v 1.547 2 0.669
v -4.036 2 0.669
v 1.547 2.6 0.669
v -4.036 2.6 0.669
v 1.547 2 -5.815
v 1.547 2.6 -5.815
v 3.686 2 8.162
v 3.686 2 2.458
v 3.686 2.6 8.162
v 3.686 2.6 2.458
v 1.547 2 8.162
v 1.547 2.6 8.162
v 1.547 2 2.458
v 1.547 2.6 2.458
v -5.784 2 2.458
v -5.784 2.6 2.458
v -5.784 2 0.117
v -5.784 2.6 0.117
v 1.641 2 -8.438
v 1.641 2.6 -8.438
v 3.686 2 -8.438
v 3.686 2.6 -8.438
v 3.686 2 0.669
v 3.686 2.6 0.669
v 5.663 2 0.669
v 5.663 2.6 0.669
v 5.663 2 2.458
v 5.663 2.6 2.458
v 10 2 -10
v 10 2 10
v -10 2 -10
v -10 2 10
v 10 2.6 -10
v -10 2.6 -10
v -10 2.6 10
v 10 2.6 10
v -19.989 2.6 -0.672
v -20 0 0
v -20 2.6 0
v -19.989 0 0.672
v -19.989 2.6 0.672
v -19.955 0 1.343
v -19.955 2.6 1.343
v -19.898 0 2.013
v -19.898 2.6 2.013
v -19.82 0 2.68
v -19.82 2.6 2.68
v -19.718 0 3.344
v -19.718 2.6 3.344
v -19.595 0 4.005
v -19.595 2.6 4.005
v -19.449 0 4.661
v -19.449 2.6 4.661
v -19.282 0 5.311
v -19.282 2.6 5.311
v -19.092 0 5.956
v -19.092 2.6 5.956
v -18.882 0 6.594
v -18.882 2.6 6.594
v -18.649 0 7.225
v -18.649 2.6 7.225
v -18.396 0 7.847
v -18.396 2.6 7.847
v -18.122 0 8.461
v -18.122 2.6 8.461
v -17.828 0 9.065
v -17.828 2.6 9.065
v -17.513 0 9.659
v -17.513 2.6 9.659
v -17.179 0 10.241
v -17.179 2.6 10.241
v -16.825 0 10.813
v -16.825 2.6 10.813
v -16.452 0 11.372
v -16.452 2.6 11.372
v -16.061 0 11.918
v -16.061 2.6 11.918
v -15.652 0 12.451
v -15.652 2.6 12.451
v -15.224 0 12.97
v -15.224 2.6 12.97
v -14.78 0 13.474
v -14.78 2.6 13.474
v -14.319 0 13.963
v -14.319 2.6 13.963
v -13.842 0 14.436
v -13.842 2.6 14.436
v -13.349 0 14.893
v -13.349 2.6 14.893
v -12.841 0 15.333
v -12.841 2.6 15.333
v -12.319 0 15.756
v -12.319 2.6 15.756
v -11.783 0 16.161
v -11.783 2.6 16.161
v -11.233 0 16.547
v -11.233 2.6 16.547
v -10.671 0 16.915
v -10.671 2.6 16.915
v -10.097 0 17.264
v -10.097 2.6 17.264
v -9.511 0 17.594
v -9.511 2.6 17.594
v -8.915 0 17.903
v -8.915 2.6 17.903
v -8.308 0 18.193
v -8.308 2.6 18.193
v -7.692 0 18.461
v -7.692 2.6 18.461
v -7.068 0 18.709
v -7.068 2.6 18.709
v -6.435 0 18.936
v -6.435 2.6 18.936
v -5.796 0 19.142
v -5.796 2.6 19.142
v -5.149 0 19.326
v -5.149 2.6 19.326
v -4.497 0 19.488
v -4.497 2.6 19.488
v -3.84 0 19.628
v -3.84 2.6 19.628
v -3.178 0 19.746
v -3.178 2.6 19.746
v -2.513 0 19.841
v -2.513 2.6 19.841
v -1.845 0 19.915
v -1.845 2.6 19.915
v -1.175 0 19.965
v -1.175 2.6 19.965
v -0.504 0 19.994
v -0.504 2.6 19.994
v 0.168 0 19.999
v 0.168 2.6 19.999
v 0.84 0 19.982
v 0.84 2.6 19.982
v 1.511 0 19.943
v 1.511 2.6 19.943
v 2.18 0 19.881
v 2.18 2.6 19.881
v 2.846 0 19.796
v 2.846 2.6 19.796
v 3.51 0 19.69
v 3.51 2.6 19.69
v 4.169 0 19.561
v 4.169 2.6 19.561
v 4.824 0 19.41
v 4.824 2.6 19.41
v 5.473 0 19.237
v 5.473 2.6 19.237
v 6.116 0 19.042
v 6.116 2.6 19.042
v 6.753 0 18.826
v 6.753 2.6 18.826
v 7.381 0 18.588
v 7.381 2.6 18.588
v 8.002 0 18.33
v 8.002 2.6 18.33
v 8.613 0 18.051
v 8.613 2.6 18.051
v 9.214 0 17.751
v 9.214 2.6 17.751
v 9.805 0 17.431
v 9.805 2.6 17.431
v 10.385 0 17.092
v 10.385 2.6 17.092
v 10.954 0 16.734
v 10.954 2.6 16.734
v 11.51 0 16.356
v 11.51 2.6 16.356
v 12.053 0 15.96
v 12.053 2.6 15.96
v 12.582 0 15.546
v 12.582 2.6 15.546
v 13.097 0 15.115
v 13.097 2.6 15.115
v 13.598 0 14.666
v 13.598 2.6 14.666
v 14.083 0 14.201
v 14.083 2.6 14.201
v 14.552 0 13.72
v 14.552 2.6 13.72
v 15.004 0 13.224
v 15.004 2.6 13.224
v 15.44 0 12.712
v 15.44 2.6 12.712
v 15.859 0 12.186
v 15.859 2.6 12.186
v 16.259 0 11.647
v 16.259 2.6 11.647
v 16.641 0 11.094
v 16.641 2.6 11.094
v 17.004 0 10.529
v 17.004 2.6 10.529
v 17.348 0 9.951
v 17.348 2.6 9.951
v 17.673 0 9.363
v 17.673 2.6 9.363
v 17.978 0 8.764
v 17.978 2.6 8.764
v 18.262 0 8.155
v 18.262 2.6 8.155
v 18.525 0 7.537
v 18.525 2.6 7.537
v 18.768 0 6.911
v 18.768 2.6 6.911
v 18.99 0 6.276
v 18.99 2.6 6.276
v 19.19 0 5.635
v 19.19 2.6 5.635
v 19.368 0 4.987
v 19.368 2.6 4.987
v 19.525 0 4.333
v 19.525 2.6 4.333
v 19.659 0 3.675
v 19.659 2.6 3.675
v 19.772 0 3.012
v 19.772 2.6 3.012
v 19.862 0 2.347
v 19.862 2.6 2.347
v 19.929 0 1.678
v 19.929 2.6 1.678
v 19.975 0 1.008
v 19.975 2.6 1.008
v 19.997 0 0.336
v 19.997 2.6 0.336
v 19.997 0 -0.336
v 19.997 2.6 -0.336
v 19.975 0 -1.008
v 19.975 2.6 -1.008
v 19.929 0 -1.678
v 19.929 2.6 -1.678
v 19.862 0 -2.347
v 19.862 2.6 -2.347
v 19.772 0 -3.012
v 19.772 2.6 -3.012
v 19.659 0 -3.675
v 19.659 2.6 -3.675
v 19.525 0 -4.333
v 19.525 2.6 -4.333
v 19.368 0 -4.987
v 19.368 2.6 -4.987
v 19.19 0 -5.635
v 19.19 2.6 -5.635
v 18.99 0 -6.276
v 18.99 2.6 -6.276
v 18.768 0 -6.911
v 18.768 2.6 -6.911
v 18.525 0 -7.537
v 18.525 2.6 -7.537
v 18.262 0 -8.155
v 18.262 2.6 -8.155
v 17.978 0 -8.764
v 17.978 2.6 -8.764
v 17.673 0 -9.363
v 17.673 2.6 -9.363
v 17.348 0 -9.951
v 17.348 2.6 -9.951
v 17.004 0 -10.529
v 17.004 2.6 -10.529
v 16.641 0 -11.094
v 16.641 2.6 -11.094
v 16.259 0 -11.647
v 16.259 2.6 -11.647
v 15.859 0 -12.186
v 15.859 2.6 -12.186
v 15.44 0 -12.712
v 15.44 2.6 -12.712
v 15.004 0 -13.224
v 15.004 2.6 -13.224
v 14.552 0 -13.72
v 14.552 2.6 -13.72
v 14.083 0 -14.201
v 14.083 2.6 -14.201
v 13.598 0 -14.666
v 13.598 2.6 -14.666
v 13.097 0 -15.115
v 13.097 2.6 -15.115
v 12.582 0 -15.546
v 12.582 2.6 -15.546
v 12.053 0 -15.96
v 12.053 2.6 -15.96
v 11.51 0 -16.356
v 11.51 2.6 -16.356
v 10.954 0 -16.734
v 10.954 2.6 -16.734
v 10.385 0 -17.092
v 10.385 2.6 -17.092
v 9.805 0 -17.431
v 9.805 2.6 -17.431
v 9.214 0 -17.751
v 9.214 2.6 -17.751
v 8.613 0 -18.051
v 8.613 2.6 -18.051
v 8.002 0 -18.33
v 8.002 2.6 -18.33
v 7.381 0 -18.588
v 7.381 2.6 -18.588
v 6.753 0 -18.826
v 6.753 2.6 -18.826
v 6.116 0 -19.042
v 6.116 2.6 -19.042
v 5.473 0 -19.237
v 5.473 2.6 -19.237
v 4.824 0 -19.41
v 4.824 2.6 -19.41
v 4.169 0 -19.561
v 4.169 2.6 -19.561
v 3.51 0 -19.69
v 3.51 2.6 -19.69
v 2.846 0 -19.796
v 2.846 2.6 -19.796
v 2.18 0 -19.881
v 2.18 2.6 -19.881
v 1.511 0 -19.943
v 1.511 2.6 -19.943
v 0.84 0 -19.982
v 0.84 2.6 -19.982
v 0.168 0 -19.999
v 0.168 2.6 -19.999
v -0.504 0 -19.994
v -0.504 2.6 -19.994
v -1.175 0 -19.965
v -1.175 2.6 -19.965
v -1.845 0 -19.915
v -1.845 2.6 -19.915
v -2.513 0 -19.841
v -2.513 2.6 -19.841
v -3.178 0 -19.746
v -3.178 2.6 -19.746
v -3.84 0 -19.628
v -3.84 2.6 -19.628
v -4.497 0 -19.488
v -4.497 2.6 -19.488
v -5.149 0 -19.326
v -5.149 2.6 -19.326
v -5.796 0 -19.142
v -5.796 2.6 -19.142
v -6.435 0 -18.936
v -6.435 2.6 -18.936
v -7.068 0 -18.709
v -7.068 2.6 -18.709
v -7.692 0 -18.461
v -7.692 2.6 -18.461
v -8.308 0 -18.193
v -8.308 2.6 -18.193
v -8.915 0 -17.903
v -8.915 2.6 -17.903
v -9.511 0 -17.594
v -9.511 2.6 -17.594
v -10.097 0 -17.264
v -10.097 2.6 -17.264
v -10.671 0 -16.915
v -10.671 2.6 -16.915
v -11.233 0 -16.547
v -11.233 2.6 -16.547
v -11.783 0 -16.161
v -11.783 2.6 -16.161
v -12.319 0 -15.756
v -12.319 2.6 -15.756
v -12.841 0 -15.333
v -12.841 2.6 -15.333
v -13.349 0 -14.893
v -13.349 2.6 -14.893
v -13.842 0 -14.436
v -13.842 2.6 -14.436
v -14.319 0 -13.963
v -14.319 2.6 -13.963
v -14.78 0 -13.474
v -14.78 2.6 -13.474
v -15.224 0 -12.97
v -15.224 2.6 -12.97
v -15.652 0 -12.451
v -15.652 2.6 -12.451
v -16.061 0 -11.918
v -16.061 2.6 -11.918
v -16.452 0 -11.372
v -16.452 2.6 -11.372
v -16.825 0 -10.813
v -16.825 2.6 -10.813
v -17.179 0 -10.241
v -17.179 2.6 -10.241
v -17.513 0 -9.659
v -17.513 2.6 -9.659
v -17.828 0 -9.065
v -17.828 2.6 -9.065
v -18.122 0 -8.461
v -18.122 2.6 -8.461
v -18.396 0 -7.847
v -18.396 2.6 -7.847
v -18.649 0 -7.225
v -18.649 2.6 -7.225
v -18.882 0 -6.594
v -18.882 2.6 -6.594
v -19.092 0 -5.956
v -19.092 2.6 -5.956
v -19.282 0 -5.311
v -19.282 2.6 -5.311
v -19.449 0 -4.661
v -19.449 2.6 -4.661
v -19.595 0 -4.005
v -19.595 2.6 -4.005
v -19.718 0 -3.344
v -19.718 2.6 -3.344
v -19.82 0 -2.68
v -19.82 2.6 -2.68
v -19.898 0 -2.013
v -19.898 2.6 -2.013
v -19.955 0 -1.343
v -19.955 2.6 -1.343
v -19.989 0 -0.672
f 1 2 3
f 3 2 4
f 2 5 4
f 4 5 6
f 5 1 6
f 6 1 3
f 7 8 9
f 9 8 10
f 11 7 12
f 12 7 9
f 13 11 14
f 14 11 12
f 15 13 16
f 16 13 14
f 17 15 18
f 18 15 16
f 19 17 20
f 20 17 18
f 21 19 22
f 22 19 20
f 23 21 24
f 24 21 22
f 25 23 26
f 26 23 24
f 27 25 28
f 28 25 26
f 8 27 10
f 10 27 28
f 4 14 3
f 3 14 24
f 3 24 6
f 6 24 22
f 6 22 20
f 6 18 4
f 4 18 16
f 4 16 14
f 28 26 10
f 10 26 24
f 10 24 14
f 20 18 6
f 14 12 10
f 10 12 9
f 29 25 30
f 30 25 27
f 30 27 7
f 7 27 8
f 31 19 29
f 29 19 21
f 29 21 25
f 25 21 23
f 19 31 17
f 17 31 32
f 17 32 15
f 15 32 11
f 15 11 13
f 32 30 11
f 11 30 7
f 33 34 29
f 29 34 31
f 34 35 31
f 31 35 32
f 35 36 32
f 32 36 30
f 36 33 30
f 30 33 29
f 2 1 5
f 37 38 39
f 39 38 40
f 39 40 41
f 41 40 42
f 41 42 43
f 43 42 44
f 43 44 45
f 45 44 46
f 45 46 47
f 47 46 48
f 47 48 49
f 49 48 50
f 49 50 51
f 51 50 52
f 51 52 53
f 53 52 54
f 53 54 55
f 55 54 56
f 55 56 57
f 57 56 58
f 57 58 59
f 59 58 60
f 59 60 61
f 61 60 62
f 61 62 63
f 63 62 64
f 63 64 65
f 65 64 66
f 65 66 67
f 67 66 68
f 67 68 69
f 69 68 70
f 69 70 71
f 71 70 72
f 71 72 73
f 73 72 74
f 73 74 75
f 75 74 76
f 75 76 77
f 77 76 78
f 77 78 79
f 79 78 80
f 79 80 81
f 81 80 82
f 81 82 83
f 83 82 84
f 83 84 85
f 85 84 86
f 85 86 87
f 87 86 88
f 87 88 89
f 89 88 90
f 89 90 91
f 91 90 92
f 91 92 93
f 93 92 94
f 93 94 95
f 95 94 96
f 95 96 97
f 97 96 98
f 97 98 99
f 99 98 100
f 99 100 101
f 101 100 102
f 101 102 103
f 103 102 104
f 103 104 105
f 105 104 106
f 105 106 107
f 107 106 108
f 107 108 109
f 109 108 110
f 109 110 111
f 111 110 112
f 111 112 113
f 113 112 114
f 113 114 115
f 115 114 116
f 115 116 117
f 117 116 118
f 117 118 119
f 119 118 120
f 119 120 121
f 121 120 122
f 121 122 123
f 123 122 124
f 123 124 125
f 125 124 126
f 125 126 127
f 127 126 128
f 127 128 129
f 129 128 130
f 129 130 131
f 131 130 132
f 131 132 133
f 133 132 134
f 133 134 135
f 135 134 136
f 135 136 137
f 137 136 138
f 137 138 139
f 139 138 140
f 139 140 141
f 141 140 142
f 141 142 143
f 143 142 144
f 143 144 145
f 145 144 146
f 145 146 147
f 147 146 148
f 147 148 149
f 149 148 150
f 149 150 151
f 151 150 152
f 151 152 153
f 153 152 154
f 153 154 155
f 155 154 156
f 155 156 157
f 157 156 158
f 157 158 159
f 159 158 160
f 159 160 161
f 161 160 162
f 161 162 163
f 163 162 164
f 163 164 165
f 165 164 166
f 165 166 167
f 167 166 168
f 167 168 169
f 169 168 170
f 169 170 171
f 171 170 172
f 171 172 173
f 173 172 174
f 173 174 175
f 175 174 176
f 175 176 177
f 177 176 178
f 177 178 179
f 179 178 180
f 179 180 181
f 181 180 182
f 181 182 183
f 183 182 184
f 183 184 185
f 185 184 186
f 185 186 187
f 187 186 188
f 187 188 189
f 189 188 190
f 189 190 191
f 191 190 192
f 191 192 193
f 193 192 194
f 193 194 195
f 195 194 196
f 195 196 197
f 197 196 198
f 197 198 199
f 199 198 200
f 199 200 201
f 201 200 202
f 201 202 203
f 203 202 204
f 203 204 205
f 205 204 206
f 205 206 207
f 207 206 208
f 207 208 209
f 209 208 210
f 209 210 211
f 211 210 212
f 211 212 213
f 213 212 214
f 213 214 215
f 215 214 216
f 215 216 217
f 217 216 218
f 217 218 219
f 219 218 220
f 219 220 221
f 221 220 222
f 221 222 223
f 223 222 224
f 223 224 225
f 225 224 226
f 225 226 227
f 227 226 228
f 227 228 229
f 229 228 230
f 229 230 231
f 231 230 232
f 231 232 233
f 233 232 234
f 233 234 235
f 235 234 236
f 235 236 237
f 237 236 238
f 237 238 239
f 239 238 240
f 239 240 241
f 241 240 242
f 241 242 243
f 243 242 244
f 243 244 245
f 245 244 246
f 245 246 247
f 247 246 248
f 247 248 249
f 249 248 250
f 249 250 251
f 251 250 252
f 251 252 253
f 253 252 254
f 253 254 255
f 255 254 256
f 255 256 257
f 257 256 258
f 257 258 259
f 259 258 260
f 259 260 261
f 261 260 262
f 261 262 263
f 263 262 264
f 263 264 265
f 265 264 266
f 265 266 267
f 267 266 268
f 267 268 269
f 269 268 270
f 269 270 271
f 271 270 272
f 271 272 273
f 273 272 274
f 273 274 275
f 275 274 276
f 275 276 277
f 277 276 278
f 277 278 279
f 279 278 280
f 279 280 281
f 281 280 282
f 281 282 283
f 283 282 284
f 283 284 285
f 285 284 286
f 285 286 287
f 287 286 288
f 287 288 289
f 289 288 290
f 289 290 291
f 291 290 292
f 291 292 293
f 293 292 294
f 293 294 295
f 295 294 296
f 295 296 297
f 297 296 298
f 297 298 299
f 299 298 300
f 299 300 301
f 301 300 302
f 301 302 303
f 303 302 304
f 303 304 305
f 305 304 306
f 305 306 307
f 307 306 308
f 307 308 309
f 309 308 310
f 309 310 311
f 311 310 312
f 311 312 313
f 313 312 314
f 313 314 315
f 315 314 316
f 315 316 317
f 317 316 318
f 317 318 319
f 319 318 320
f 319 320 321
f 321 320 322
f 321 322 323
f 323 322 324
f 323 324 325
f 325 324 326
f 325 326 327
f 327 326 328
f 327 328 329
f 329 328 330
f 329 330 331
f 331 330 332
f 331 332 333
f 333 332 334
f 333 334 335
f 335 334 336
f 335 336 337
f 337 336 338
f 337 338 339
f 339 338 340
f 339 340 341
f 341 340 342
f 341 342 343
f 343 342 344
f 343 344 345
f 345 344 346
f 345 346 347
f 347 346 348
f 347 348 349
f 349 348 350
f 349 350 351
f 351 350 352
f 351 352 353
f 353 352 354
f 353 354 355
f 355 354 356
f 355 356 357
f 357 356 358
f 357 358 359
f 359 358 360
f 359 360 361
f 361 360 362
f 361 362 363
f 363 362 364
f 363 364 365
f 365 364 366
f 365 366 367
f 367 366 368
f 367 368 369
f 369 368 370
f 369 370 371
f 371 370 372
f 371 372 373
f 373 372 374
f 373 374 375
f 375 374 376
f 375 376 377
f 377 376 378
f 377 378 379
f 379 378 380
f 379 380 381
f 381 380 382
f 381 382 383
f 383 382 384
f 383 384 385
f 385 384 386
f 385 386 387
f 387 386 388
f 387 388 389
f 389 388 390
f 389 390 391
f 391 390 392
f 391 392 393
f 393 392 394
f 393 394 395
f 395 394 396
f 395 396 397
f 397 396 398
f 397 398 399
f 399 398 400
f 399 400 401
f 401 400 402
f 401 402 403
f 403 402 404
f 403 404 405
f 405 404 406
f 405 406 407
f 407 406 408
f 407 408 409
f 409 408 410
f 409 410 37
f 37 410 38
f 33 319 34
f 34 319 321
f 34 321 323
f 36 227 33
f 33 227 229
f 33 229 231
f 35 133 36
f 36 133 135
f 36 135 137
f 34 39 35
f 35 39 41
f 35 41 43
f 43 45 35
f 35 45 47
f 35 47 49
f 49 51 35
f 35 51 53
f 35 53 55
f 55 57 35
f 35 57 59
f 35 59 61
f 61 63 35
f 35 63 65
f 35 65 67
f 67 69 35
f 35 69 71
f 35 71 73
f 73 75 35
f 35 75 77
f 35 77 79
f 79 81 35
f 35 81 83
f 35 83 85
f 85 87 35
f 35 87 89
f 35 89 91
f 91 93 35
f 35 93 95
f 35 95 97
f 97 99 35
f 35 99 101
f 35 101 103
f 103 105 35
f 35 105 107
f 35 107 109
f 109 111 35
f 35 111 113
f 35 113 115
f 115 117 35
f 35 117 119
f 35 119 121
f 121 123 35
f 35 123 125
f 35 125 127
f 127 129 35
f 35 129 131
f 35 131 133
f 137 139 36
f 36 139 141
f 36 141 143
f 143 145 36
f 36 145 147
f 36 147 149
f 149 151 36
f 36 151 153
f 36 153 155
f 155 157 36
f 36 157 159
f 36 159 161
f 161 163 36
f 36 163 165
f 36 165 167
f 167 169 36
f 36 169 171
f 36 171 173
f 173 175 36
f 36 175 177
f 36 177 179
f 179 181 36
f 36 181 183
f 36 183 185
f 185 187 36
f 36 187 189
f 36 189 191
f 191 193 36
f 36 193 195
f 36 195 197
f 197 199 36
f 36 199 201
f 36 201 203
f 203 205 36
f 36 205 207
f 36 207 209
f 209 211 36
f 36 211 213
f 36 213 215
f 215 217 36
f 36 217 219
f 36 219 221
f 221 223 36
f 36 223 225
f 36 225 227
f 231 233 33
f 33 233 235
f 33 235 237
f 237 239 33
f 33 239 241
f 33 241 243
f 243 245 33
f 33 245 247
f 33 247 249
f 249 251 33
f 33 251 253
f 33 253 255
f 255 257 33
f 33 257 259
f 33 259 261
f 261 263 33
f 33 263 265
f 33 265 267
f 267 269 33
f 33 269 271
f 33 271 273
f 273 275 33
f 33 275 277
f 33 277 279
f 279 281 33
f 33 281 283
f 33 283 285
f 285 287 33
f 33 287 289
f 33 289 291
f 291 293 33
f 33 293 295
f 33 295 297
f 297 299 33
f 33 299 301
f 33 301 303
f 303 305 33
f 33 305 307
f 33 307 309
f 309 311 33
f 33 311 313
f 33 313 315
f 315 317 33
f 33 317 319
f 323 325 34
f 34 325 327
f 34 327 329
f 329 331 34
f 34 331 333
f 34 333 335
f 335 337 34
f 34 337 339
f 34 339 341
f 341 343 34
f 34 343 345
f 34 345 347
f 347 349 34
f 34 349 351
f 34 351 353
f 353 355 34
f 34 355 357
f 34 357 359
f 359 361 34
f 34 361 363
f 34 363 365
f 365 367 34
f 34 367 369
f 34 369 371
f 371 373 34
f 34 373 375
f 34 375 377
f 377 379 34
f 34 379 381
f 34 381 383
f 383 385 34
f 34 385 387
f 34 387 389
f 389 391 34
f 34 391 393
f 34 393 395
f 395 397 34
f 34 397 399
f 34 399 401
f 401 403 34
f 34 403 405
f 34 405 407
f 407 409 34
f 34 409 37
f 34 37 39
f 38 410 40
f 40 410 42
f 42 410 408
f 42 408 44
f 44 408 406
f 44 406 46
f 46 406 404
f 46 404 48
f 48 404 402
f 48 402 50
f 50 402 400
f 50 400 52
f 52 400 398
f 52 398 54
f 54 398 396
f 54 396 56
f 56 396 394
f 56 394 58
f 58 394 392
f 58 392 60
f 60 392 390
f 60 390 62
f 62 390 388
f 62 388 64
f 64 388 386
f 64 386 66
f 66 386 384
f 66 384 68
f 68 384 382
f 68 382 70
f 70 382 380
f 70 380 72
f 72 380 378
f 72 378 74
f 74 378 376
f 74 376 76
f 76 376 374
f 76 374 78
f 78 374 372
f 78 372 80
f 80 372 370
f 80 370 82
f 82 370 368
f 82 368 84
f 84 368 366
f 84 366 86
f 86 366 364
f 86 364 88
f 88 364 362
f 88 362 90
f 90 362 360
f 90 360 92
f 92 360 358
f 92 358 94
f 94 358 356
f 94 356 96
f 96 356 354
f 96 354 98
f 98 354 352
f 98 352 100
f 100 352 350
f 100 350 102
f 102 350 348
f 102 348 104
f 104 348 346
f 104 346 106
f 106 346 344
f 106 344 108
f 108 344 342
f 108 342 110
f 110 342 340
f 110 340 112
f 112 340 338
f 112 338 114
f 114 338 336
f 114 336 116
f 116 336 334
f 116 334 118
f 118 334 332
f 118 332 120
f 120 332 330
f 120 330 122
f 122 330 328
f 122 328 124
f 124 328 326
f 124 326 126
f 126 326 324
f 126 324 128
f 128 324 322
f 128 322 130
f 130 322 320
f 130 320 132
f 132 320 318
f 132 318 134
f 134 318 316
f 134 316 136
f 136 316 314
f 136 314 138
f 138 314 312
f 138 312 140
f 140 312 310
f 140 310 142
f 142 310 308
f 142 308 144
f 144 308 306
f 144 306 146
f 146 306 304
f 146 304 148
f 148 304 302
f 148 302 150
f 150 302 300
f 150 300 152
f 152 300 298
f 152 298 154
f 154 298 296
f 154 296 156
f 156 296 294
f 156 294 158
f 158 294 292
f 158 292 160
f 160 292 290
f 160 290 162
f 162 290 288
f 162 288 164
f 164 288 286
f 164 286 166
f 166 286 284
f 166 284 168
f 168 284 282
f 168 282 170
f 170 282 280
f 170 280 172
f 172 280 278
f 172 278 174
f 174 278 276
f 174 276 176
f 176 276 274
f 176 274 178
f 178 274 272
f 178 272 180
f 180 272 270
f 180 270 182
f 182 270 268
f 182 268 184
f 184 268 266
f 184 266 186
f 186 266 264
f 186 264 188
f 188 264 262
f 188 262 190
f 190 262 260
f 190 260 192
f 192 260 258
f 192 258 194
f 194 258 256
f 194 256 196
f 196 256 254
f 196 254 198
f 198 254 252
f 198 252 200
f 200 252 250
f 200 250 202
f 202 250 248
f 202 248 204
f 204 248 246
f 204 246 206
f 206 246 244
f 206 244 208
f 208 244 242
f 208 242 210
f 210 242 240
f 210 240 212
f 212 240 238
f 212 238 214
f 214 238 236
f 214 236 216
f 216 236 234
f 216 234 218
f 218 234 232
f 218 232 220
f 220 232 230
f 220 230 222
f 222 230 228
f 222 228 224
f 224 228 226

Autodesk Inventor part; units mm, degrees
ref_plane "YZ Plane" through (0, 0, 0) normal (1, 0, 0) x (0, 1, 0)
ref_plane "XZ Plane" through (0, 0, 0) normal (0, 1, 0) x (-1, 0, 0)
ref_plane "XY Plane" through (0, 0, 0) normal (0, 0, 1) x (1, 0, 0)
sketch "Sketch1" plane through (0, 0, 0) normal (0, 1, 0) x (-1, 0, 0)
  circle A0 centre (0, 0) radius 20
  dimension "d0" = 40
extrude "Extrusion1" add sketch "Sketch1" along normal blind 2.6
sketch "Sketch2" plane through (0, 2.6, 0) normal (0, 1, 0) x (1, 0, 0)
  line L0 (-10, -10) -> (-10, 10)
  line L1 (-10, 10) -> (10, 10)
  line L2 (10, 10) -> (10, -10)
  line L3 (10, -10) -> (-10, -10)
  line L4 (-10, -10) -> (10, 10) construction
  line L5 (-10, 10) -> (10, -10) construction
  point P0 (0, 0)
  dimension "d3" = 20
  dimension "d4" = 20
extrude "Extrusion2" cut sketch "Sketch2" against normal blind 0.6
sketch "Sketch3" plane through (0, 2, 0) normal (0, 1, 0) x (1, 0, 0)
  line L0 (-6.2284, 8.4382) -> (6.2284, 8.4382) construction
  line L1 (6.2284, 8.4382) -> (6.2284, -8.1618) construction
  line L2 (6.2284, -8.1618) -> (-6.2284, -8.1618) construction
  line L3 (-6.2284, -8.1618) -> (-6.2284, 8.4382) construction
  line L4 (5.6634, -2.4581) -> (3.6859, -2.4581)
  line L5 (3.6859, -2.4581) -> (3.6859, -8.1618)
  line L6 (3.6859, -8.1618) -> (1.547, -8.1618)
  line L7 (1.547, -8.1618) -> (1.547, -2.4581)
  line L8 (1.547, -2.4581) -> (-5.7844, -2.4581)
  line L9 (-5.7844, -2.4581) -> (-5.7844, -0.1174)
  line L10 (-5.7844, -0.1174) -> (1.6412, 8.4382)
  line L11 (1.6412, 8.4382) -> (3.6859, 8.4382)
  line L12 (3.6859, 8.4382) -> (3.6859, -0.6689)
  line L13 (3.6859, -0.6689) -> (5.6634, -0.6689)
  line L14 (5.6634, -0.6689) -> (5.6634, -2.4581)
  line L15 (1.547, -0.6689) -> (1.547, 5.815)
  line L16 (1.547, 5.815) -> (-4.0357, -0.6689)
  line L17 (-4.0357, -0.6689) -> (1.547, -0.6689)
  point P0 (0, 0)
extrude "Extrusion3" add sketch "Sketch3" along normal blind 0.6
properties part number "TopMarker4"
